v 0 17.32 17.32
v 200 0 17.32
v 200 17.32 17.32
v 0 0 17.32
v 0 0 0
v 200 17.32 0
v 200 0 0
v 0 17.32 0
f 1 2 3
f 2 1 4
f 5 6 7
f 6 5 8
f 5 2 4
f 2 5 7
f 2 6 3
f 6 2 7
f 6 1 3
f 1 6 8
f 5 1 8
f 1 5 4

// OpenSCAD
length = 200;
width = 17.32;
height = 17.32;

//translate([0, -width/2, 0])
cube([length, width, height]);
